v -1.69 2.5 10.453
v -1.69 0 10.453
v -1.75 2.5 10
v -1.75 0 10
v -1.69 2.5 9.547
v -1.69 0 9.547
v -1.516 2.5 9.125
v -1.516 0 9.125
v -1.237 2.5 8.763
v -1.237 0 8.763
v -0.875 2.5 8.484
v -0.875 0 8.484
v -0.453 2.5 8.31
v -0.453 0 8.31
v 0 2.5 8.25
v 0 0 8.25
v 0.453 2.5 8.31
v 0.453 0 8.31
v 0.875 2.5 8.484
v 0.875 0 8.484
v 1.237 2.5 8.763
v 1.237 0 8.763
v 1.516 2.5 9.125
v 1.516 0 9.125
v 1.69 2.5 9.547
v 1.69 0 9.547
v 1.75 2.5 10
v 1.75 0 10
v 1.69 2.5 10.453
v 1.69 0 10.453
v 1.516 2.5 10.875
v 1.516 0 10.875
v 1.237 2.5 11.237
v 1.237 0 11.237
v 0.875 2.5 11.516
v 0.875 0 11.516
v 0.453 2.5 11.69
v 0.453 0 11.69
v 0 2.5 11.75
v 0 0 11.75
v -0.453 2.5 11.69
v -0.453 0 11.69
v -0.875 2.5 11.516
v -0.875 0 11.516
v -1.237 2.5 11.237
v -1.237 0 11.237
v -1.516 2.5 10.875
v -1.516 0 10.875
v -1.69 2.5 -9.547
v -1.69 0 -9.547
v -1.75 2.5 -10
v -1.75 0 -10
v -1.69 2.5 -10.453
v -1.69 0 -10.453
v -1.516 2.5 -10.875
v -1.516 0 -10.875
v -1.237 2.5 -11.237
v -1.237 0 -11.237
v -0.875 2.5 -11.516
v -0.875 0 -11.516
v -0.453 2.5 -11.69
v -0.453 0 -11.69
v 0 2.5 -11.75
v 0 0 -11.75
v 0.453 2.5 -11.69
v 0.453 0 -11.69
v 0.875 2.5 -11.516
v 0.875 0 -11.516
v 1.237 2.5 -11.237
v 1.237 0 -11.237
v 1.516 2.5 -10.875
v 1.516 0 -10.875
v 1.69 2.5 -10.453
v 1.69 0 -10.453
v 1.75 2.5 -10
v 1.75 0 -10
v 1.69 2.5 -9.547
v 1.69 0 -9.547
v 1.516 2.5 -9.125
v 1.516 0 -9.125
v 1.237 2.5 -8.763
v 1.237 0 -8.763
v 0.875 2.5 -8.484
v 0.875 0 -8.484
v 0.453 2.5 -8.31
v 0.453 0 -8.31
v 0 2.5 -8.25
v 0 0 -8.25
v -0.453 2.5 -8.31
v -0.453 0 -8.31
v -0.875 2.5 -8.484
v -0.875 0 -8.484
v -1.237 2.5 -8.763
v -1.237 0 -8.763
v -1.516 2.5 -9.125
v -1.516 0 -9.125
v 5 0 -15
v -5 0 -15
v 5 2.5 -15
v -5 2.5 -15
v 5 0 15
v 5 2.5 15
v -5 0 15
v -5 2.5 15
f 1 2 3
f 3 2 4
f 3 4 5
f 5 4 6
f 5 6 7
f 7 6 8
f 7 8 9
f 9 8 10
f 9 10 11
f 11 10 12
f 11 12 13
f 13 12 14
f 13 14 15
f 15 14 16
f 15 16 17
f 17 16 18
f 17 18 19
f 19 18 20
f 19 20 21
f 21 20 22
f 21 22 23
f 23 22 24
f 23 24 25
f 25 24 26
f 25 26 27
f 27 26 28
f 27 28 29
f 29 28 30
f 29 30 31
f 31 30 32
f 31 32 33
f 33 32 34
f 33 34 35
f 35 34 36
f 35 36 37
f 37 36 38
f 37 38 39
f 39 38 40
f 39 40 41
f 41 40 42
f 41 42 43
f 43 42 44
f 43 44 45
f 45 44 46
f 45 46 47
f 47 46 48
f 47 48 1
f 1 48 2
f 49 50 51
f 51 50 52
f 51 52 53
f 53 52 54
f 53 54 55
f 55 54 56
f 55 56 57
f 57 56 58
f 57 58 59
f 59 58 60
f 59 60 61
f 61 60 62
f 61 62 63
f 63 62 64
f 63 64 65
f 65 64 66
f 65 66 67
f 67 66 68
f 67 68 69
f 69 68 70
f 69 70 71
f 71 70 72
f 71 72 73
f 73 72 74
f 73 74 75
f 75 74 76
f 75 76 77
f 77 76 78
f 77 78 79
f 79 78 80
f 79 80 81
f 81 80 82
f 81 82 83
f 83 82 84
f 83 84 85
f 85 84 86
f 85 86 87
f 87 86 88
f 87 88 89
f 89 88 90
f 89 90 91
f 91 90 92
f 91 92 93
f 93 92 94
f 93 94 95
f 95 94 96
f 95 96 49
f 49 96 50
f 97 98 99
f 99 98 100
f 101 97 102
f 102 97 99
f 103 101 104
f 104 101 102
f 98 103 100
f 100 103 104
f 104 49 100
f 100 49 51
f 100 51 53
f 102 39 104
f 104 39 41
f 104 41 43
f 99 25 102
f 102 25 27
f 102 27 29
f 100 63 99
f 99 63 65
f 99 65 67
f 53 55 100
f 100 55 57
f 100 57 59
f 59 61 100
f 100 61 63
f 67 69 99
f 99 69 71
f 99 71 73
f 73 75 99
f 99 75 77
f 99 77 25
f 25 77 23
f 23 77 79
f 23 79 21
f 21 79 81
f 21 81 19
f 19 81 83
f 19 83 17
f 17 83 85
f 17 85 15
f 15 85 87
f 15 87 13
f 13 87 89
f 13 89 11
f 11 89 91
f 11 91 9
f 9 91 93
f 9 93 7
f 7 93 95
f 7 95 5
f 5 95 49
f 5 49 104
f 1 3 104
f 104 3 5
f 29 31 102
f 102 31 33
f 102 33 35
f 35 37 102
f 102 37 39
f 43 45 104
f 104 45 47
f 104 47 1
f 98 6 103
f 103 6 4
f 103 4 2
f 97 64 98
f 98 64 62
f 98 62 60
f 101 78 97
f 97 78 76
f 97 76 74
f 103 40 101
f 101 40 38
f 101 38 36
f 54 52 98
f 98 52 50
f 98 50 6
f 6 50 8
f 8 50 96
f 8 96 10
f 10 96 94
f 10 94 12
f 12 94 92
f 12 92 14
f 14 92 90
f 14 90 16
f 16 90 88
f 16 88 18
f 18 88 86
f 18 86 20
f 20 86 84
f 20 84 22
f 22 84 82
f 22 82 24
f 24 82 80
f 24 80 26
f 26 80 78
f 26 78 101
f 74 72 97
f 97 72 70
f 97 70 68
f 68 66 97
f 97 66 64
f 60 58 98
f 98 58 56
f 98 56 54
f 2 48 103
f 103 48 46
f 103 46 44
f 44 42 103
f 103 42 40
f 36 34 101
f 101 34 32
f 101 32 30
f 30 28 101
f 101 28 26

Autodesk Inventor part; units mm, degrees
ref_plane "YZ Plane" through (0, 0, 0) normal (1, 0, 0) x (0, 1, 0)
ref_plane "XZ Plane" through (0, 0, 0) normal (0, 1, 0) x (-1, 0, 0)
ref_plane "XY Plane" through (0, 0, 0) normal (0, 0, 1) x (1, 0, 0)
sketch "Boceto1" plane through (0, 0, 0) normal (0, 1, 0) x (-1, 0, 0)
  circle A0 centre (0, 10) radius 1.75
  circle A1 centre (0, -10) radius 1.75
  line L0 (0, 10) -> (0, -10)
  line L1 (5, 15) -> (-5, 15)
  line L2 (-5, 15) -> (-5, -15)
  line L3 (-5, -15) -> (5, -15)
  line L4 (5, -15) -> (5, 15)
  line L5 (5, 15) -> (-5, -15) construction
  line L6 (-5, 15) -> (5, -15) construction
  point P0 (0, 0)
  point P1 (0, 0)
extrude "Extrusión1" add sketch "Boceto1" along normal blind 2.5
properties part number "standard_union"
